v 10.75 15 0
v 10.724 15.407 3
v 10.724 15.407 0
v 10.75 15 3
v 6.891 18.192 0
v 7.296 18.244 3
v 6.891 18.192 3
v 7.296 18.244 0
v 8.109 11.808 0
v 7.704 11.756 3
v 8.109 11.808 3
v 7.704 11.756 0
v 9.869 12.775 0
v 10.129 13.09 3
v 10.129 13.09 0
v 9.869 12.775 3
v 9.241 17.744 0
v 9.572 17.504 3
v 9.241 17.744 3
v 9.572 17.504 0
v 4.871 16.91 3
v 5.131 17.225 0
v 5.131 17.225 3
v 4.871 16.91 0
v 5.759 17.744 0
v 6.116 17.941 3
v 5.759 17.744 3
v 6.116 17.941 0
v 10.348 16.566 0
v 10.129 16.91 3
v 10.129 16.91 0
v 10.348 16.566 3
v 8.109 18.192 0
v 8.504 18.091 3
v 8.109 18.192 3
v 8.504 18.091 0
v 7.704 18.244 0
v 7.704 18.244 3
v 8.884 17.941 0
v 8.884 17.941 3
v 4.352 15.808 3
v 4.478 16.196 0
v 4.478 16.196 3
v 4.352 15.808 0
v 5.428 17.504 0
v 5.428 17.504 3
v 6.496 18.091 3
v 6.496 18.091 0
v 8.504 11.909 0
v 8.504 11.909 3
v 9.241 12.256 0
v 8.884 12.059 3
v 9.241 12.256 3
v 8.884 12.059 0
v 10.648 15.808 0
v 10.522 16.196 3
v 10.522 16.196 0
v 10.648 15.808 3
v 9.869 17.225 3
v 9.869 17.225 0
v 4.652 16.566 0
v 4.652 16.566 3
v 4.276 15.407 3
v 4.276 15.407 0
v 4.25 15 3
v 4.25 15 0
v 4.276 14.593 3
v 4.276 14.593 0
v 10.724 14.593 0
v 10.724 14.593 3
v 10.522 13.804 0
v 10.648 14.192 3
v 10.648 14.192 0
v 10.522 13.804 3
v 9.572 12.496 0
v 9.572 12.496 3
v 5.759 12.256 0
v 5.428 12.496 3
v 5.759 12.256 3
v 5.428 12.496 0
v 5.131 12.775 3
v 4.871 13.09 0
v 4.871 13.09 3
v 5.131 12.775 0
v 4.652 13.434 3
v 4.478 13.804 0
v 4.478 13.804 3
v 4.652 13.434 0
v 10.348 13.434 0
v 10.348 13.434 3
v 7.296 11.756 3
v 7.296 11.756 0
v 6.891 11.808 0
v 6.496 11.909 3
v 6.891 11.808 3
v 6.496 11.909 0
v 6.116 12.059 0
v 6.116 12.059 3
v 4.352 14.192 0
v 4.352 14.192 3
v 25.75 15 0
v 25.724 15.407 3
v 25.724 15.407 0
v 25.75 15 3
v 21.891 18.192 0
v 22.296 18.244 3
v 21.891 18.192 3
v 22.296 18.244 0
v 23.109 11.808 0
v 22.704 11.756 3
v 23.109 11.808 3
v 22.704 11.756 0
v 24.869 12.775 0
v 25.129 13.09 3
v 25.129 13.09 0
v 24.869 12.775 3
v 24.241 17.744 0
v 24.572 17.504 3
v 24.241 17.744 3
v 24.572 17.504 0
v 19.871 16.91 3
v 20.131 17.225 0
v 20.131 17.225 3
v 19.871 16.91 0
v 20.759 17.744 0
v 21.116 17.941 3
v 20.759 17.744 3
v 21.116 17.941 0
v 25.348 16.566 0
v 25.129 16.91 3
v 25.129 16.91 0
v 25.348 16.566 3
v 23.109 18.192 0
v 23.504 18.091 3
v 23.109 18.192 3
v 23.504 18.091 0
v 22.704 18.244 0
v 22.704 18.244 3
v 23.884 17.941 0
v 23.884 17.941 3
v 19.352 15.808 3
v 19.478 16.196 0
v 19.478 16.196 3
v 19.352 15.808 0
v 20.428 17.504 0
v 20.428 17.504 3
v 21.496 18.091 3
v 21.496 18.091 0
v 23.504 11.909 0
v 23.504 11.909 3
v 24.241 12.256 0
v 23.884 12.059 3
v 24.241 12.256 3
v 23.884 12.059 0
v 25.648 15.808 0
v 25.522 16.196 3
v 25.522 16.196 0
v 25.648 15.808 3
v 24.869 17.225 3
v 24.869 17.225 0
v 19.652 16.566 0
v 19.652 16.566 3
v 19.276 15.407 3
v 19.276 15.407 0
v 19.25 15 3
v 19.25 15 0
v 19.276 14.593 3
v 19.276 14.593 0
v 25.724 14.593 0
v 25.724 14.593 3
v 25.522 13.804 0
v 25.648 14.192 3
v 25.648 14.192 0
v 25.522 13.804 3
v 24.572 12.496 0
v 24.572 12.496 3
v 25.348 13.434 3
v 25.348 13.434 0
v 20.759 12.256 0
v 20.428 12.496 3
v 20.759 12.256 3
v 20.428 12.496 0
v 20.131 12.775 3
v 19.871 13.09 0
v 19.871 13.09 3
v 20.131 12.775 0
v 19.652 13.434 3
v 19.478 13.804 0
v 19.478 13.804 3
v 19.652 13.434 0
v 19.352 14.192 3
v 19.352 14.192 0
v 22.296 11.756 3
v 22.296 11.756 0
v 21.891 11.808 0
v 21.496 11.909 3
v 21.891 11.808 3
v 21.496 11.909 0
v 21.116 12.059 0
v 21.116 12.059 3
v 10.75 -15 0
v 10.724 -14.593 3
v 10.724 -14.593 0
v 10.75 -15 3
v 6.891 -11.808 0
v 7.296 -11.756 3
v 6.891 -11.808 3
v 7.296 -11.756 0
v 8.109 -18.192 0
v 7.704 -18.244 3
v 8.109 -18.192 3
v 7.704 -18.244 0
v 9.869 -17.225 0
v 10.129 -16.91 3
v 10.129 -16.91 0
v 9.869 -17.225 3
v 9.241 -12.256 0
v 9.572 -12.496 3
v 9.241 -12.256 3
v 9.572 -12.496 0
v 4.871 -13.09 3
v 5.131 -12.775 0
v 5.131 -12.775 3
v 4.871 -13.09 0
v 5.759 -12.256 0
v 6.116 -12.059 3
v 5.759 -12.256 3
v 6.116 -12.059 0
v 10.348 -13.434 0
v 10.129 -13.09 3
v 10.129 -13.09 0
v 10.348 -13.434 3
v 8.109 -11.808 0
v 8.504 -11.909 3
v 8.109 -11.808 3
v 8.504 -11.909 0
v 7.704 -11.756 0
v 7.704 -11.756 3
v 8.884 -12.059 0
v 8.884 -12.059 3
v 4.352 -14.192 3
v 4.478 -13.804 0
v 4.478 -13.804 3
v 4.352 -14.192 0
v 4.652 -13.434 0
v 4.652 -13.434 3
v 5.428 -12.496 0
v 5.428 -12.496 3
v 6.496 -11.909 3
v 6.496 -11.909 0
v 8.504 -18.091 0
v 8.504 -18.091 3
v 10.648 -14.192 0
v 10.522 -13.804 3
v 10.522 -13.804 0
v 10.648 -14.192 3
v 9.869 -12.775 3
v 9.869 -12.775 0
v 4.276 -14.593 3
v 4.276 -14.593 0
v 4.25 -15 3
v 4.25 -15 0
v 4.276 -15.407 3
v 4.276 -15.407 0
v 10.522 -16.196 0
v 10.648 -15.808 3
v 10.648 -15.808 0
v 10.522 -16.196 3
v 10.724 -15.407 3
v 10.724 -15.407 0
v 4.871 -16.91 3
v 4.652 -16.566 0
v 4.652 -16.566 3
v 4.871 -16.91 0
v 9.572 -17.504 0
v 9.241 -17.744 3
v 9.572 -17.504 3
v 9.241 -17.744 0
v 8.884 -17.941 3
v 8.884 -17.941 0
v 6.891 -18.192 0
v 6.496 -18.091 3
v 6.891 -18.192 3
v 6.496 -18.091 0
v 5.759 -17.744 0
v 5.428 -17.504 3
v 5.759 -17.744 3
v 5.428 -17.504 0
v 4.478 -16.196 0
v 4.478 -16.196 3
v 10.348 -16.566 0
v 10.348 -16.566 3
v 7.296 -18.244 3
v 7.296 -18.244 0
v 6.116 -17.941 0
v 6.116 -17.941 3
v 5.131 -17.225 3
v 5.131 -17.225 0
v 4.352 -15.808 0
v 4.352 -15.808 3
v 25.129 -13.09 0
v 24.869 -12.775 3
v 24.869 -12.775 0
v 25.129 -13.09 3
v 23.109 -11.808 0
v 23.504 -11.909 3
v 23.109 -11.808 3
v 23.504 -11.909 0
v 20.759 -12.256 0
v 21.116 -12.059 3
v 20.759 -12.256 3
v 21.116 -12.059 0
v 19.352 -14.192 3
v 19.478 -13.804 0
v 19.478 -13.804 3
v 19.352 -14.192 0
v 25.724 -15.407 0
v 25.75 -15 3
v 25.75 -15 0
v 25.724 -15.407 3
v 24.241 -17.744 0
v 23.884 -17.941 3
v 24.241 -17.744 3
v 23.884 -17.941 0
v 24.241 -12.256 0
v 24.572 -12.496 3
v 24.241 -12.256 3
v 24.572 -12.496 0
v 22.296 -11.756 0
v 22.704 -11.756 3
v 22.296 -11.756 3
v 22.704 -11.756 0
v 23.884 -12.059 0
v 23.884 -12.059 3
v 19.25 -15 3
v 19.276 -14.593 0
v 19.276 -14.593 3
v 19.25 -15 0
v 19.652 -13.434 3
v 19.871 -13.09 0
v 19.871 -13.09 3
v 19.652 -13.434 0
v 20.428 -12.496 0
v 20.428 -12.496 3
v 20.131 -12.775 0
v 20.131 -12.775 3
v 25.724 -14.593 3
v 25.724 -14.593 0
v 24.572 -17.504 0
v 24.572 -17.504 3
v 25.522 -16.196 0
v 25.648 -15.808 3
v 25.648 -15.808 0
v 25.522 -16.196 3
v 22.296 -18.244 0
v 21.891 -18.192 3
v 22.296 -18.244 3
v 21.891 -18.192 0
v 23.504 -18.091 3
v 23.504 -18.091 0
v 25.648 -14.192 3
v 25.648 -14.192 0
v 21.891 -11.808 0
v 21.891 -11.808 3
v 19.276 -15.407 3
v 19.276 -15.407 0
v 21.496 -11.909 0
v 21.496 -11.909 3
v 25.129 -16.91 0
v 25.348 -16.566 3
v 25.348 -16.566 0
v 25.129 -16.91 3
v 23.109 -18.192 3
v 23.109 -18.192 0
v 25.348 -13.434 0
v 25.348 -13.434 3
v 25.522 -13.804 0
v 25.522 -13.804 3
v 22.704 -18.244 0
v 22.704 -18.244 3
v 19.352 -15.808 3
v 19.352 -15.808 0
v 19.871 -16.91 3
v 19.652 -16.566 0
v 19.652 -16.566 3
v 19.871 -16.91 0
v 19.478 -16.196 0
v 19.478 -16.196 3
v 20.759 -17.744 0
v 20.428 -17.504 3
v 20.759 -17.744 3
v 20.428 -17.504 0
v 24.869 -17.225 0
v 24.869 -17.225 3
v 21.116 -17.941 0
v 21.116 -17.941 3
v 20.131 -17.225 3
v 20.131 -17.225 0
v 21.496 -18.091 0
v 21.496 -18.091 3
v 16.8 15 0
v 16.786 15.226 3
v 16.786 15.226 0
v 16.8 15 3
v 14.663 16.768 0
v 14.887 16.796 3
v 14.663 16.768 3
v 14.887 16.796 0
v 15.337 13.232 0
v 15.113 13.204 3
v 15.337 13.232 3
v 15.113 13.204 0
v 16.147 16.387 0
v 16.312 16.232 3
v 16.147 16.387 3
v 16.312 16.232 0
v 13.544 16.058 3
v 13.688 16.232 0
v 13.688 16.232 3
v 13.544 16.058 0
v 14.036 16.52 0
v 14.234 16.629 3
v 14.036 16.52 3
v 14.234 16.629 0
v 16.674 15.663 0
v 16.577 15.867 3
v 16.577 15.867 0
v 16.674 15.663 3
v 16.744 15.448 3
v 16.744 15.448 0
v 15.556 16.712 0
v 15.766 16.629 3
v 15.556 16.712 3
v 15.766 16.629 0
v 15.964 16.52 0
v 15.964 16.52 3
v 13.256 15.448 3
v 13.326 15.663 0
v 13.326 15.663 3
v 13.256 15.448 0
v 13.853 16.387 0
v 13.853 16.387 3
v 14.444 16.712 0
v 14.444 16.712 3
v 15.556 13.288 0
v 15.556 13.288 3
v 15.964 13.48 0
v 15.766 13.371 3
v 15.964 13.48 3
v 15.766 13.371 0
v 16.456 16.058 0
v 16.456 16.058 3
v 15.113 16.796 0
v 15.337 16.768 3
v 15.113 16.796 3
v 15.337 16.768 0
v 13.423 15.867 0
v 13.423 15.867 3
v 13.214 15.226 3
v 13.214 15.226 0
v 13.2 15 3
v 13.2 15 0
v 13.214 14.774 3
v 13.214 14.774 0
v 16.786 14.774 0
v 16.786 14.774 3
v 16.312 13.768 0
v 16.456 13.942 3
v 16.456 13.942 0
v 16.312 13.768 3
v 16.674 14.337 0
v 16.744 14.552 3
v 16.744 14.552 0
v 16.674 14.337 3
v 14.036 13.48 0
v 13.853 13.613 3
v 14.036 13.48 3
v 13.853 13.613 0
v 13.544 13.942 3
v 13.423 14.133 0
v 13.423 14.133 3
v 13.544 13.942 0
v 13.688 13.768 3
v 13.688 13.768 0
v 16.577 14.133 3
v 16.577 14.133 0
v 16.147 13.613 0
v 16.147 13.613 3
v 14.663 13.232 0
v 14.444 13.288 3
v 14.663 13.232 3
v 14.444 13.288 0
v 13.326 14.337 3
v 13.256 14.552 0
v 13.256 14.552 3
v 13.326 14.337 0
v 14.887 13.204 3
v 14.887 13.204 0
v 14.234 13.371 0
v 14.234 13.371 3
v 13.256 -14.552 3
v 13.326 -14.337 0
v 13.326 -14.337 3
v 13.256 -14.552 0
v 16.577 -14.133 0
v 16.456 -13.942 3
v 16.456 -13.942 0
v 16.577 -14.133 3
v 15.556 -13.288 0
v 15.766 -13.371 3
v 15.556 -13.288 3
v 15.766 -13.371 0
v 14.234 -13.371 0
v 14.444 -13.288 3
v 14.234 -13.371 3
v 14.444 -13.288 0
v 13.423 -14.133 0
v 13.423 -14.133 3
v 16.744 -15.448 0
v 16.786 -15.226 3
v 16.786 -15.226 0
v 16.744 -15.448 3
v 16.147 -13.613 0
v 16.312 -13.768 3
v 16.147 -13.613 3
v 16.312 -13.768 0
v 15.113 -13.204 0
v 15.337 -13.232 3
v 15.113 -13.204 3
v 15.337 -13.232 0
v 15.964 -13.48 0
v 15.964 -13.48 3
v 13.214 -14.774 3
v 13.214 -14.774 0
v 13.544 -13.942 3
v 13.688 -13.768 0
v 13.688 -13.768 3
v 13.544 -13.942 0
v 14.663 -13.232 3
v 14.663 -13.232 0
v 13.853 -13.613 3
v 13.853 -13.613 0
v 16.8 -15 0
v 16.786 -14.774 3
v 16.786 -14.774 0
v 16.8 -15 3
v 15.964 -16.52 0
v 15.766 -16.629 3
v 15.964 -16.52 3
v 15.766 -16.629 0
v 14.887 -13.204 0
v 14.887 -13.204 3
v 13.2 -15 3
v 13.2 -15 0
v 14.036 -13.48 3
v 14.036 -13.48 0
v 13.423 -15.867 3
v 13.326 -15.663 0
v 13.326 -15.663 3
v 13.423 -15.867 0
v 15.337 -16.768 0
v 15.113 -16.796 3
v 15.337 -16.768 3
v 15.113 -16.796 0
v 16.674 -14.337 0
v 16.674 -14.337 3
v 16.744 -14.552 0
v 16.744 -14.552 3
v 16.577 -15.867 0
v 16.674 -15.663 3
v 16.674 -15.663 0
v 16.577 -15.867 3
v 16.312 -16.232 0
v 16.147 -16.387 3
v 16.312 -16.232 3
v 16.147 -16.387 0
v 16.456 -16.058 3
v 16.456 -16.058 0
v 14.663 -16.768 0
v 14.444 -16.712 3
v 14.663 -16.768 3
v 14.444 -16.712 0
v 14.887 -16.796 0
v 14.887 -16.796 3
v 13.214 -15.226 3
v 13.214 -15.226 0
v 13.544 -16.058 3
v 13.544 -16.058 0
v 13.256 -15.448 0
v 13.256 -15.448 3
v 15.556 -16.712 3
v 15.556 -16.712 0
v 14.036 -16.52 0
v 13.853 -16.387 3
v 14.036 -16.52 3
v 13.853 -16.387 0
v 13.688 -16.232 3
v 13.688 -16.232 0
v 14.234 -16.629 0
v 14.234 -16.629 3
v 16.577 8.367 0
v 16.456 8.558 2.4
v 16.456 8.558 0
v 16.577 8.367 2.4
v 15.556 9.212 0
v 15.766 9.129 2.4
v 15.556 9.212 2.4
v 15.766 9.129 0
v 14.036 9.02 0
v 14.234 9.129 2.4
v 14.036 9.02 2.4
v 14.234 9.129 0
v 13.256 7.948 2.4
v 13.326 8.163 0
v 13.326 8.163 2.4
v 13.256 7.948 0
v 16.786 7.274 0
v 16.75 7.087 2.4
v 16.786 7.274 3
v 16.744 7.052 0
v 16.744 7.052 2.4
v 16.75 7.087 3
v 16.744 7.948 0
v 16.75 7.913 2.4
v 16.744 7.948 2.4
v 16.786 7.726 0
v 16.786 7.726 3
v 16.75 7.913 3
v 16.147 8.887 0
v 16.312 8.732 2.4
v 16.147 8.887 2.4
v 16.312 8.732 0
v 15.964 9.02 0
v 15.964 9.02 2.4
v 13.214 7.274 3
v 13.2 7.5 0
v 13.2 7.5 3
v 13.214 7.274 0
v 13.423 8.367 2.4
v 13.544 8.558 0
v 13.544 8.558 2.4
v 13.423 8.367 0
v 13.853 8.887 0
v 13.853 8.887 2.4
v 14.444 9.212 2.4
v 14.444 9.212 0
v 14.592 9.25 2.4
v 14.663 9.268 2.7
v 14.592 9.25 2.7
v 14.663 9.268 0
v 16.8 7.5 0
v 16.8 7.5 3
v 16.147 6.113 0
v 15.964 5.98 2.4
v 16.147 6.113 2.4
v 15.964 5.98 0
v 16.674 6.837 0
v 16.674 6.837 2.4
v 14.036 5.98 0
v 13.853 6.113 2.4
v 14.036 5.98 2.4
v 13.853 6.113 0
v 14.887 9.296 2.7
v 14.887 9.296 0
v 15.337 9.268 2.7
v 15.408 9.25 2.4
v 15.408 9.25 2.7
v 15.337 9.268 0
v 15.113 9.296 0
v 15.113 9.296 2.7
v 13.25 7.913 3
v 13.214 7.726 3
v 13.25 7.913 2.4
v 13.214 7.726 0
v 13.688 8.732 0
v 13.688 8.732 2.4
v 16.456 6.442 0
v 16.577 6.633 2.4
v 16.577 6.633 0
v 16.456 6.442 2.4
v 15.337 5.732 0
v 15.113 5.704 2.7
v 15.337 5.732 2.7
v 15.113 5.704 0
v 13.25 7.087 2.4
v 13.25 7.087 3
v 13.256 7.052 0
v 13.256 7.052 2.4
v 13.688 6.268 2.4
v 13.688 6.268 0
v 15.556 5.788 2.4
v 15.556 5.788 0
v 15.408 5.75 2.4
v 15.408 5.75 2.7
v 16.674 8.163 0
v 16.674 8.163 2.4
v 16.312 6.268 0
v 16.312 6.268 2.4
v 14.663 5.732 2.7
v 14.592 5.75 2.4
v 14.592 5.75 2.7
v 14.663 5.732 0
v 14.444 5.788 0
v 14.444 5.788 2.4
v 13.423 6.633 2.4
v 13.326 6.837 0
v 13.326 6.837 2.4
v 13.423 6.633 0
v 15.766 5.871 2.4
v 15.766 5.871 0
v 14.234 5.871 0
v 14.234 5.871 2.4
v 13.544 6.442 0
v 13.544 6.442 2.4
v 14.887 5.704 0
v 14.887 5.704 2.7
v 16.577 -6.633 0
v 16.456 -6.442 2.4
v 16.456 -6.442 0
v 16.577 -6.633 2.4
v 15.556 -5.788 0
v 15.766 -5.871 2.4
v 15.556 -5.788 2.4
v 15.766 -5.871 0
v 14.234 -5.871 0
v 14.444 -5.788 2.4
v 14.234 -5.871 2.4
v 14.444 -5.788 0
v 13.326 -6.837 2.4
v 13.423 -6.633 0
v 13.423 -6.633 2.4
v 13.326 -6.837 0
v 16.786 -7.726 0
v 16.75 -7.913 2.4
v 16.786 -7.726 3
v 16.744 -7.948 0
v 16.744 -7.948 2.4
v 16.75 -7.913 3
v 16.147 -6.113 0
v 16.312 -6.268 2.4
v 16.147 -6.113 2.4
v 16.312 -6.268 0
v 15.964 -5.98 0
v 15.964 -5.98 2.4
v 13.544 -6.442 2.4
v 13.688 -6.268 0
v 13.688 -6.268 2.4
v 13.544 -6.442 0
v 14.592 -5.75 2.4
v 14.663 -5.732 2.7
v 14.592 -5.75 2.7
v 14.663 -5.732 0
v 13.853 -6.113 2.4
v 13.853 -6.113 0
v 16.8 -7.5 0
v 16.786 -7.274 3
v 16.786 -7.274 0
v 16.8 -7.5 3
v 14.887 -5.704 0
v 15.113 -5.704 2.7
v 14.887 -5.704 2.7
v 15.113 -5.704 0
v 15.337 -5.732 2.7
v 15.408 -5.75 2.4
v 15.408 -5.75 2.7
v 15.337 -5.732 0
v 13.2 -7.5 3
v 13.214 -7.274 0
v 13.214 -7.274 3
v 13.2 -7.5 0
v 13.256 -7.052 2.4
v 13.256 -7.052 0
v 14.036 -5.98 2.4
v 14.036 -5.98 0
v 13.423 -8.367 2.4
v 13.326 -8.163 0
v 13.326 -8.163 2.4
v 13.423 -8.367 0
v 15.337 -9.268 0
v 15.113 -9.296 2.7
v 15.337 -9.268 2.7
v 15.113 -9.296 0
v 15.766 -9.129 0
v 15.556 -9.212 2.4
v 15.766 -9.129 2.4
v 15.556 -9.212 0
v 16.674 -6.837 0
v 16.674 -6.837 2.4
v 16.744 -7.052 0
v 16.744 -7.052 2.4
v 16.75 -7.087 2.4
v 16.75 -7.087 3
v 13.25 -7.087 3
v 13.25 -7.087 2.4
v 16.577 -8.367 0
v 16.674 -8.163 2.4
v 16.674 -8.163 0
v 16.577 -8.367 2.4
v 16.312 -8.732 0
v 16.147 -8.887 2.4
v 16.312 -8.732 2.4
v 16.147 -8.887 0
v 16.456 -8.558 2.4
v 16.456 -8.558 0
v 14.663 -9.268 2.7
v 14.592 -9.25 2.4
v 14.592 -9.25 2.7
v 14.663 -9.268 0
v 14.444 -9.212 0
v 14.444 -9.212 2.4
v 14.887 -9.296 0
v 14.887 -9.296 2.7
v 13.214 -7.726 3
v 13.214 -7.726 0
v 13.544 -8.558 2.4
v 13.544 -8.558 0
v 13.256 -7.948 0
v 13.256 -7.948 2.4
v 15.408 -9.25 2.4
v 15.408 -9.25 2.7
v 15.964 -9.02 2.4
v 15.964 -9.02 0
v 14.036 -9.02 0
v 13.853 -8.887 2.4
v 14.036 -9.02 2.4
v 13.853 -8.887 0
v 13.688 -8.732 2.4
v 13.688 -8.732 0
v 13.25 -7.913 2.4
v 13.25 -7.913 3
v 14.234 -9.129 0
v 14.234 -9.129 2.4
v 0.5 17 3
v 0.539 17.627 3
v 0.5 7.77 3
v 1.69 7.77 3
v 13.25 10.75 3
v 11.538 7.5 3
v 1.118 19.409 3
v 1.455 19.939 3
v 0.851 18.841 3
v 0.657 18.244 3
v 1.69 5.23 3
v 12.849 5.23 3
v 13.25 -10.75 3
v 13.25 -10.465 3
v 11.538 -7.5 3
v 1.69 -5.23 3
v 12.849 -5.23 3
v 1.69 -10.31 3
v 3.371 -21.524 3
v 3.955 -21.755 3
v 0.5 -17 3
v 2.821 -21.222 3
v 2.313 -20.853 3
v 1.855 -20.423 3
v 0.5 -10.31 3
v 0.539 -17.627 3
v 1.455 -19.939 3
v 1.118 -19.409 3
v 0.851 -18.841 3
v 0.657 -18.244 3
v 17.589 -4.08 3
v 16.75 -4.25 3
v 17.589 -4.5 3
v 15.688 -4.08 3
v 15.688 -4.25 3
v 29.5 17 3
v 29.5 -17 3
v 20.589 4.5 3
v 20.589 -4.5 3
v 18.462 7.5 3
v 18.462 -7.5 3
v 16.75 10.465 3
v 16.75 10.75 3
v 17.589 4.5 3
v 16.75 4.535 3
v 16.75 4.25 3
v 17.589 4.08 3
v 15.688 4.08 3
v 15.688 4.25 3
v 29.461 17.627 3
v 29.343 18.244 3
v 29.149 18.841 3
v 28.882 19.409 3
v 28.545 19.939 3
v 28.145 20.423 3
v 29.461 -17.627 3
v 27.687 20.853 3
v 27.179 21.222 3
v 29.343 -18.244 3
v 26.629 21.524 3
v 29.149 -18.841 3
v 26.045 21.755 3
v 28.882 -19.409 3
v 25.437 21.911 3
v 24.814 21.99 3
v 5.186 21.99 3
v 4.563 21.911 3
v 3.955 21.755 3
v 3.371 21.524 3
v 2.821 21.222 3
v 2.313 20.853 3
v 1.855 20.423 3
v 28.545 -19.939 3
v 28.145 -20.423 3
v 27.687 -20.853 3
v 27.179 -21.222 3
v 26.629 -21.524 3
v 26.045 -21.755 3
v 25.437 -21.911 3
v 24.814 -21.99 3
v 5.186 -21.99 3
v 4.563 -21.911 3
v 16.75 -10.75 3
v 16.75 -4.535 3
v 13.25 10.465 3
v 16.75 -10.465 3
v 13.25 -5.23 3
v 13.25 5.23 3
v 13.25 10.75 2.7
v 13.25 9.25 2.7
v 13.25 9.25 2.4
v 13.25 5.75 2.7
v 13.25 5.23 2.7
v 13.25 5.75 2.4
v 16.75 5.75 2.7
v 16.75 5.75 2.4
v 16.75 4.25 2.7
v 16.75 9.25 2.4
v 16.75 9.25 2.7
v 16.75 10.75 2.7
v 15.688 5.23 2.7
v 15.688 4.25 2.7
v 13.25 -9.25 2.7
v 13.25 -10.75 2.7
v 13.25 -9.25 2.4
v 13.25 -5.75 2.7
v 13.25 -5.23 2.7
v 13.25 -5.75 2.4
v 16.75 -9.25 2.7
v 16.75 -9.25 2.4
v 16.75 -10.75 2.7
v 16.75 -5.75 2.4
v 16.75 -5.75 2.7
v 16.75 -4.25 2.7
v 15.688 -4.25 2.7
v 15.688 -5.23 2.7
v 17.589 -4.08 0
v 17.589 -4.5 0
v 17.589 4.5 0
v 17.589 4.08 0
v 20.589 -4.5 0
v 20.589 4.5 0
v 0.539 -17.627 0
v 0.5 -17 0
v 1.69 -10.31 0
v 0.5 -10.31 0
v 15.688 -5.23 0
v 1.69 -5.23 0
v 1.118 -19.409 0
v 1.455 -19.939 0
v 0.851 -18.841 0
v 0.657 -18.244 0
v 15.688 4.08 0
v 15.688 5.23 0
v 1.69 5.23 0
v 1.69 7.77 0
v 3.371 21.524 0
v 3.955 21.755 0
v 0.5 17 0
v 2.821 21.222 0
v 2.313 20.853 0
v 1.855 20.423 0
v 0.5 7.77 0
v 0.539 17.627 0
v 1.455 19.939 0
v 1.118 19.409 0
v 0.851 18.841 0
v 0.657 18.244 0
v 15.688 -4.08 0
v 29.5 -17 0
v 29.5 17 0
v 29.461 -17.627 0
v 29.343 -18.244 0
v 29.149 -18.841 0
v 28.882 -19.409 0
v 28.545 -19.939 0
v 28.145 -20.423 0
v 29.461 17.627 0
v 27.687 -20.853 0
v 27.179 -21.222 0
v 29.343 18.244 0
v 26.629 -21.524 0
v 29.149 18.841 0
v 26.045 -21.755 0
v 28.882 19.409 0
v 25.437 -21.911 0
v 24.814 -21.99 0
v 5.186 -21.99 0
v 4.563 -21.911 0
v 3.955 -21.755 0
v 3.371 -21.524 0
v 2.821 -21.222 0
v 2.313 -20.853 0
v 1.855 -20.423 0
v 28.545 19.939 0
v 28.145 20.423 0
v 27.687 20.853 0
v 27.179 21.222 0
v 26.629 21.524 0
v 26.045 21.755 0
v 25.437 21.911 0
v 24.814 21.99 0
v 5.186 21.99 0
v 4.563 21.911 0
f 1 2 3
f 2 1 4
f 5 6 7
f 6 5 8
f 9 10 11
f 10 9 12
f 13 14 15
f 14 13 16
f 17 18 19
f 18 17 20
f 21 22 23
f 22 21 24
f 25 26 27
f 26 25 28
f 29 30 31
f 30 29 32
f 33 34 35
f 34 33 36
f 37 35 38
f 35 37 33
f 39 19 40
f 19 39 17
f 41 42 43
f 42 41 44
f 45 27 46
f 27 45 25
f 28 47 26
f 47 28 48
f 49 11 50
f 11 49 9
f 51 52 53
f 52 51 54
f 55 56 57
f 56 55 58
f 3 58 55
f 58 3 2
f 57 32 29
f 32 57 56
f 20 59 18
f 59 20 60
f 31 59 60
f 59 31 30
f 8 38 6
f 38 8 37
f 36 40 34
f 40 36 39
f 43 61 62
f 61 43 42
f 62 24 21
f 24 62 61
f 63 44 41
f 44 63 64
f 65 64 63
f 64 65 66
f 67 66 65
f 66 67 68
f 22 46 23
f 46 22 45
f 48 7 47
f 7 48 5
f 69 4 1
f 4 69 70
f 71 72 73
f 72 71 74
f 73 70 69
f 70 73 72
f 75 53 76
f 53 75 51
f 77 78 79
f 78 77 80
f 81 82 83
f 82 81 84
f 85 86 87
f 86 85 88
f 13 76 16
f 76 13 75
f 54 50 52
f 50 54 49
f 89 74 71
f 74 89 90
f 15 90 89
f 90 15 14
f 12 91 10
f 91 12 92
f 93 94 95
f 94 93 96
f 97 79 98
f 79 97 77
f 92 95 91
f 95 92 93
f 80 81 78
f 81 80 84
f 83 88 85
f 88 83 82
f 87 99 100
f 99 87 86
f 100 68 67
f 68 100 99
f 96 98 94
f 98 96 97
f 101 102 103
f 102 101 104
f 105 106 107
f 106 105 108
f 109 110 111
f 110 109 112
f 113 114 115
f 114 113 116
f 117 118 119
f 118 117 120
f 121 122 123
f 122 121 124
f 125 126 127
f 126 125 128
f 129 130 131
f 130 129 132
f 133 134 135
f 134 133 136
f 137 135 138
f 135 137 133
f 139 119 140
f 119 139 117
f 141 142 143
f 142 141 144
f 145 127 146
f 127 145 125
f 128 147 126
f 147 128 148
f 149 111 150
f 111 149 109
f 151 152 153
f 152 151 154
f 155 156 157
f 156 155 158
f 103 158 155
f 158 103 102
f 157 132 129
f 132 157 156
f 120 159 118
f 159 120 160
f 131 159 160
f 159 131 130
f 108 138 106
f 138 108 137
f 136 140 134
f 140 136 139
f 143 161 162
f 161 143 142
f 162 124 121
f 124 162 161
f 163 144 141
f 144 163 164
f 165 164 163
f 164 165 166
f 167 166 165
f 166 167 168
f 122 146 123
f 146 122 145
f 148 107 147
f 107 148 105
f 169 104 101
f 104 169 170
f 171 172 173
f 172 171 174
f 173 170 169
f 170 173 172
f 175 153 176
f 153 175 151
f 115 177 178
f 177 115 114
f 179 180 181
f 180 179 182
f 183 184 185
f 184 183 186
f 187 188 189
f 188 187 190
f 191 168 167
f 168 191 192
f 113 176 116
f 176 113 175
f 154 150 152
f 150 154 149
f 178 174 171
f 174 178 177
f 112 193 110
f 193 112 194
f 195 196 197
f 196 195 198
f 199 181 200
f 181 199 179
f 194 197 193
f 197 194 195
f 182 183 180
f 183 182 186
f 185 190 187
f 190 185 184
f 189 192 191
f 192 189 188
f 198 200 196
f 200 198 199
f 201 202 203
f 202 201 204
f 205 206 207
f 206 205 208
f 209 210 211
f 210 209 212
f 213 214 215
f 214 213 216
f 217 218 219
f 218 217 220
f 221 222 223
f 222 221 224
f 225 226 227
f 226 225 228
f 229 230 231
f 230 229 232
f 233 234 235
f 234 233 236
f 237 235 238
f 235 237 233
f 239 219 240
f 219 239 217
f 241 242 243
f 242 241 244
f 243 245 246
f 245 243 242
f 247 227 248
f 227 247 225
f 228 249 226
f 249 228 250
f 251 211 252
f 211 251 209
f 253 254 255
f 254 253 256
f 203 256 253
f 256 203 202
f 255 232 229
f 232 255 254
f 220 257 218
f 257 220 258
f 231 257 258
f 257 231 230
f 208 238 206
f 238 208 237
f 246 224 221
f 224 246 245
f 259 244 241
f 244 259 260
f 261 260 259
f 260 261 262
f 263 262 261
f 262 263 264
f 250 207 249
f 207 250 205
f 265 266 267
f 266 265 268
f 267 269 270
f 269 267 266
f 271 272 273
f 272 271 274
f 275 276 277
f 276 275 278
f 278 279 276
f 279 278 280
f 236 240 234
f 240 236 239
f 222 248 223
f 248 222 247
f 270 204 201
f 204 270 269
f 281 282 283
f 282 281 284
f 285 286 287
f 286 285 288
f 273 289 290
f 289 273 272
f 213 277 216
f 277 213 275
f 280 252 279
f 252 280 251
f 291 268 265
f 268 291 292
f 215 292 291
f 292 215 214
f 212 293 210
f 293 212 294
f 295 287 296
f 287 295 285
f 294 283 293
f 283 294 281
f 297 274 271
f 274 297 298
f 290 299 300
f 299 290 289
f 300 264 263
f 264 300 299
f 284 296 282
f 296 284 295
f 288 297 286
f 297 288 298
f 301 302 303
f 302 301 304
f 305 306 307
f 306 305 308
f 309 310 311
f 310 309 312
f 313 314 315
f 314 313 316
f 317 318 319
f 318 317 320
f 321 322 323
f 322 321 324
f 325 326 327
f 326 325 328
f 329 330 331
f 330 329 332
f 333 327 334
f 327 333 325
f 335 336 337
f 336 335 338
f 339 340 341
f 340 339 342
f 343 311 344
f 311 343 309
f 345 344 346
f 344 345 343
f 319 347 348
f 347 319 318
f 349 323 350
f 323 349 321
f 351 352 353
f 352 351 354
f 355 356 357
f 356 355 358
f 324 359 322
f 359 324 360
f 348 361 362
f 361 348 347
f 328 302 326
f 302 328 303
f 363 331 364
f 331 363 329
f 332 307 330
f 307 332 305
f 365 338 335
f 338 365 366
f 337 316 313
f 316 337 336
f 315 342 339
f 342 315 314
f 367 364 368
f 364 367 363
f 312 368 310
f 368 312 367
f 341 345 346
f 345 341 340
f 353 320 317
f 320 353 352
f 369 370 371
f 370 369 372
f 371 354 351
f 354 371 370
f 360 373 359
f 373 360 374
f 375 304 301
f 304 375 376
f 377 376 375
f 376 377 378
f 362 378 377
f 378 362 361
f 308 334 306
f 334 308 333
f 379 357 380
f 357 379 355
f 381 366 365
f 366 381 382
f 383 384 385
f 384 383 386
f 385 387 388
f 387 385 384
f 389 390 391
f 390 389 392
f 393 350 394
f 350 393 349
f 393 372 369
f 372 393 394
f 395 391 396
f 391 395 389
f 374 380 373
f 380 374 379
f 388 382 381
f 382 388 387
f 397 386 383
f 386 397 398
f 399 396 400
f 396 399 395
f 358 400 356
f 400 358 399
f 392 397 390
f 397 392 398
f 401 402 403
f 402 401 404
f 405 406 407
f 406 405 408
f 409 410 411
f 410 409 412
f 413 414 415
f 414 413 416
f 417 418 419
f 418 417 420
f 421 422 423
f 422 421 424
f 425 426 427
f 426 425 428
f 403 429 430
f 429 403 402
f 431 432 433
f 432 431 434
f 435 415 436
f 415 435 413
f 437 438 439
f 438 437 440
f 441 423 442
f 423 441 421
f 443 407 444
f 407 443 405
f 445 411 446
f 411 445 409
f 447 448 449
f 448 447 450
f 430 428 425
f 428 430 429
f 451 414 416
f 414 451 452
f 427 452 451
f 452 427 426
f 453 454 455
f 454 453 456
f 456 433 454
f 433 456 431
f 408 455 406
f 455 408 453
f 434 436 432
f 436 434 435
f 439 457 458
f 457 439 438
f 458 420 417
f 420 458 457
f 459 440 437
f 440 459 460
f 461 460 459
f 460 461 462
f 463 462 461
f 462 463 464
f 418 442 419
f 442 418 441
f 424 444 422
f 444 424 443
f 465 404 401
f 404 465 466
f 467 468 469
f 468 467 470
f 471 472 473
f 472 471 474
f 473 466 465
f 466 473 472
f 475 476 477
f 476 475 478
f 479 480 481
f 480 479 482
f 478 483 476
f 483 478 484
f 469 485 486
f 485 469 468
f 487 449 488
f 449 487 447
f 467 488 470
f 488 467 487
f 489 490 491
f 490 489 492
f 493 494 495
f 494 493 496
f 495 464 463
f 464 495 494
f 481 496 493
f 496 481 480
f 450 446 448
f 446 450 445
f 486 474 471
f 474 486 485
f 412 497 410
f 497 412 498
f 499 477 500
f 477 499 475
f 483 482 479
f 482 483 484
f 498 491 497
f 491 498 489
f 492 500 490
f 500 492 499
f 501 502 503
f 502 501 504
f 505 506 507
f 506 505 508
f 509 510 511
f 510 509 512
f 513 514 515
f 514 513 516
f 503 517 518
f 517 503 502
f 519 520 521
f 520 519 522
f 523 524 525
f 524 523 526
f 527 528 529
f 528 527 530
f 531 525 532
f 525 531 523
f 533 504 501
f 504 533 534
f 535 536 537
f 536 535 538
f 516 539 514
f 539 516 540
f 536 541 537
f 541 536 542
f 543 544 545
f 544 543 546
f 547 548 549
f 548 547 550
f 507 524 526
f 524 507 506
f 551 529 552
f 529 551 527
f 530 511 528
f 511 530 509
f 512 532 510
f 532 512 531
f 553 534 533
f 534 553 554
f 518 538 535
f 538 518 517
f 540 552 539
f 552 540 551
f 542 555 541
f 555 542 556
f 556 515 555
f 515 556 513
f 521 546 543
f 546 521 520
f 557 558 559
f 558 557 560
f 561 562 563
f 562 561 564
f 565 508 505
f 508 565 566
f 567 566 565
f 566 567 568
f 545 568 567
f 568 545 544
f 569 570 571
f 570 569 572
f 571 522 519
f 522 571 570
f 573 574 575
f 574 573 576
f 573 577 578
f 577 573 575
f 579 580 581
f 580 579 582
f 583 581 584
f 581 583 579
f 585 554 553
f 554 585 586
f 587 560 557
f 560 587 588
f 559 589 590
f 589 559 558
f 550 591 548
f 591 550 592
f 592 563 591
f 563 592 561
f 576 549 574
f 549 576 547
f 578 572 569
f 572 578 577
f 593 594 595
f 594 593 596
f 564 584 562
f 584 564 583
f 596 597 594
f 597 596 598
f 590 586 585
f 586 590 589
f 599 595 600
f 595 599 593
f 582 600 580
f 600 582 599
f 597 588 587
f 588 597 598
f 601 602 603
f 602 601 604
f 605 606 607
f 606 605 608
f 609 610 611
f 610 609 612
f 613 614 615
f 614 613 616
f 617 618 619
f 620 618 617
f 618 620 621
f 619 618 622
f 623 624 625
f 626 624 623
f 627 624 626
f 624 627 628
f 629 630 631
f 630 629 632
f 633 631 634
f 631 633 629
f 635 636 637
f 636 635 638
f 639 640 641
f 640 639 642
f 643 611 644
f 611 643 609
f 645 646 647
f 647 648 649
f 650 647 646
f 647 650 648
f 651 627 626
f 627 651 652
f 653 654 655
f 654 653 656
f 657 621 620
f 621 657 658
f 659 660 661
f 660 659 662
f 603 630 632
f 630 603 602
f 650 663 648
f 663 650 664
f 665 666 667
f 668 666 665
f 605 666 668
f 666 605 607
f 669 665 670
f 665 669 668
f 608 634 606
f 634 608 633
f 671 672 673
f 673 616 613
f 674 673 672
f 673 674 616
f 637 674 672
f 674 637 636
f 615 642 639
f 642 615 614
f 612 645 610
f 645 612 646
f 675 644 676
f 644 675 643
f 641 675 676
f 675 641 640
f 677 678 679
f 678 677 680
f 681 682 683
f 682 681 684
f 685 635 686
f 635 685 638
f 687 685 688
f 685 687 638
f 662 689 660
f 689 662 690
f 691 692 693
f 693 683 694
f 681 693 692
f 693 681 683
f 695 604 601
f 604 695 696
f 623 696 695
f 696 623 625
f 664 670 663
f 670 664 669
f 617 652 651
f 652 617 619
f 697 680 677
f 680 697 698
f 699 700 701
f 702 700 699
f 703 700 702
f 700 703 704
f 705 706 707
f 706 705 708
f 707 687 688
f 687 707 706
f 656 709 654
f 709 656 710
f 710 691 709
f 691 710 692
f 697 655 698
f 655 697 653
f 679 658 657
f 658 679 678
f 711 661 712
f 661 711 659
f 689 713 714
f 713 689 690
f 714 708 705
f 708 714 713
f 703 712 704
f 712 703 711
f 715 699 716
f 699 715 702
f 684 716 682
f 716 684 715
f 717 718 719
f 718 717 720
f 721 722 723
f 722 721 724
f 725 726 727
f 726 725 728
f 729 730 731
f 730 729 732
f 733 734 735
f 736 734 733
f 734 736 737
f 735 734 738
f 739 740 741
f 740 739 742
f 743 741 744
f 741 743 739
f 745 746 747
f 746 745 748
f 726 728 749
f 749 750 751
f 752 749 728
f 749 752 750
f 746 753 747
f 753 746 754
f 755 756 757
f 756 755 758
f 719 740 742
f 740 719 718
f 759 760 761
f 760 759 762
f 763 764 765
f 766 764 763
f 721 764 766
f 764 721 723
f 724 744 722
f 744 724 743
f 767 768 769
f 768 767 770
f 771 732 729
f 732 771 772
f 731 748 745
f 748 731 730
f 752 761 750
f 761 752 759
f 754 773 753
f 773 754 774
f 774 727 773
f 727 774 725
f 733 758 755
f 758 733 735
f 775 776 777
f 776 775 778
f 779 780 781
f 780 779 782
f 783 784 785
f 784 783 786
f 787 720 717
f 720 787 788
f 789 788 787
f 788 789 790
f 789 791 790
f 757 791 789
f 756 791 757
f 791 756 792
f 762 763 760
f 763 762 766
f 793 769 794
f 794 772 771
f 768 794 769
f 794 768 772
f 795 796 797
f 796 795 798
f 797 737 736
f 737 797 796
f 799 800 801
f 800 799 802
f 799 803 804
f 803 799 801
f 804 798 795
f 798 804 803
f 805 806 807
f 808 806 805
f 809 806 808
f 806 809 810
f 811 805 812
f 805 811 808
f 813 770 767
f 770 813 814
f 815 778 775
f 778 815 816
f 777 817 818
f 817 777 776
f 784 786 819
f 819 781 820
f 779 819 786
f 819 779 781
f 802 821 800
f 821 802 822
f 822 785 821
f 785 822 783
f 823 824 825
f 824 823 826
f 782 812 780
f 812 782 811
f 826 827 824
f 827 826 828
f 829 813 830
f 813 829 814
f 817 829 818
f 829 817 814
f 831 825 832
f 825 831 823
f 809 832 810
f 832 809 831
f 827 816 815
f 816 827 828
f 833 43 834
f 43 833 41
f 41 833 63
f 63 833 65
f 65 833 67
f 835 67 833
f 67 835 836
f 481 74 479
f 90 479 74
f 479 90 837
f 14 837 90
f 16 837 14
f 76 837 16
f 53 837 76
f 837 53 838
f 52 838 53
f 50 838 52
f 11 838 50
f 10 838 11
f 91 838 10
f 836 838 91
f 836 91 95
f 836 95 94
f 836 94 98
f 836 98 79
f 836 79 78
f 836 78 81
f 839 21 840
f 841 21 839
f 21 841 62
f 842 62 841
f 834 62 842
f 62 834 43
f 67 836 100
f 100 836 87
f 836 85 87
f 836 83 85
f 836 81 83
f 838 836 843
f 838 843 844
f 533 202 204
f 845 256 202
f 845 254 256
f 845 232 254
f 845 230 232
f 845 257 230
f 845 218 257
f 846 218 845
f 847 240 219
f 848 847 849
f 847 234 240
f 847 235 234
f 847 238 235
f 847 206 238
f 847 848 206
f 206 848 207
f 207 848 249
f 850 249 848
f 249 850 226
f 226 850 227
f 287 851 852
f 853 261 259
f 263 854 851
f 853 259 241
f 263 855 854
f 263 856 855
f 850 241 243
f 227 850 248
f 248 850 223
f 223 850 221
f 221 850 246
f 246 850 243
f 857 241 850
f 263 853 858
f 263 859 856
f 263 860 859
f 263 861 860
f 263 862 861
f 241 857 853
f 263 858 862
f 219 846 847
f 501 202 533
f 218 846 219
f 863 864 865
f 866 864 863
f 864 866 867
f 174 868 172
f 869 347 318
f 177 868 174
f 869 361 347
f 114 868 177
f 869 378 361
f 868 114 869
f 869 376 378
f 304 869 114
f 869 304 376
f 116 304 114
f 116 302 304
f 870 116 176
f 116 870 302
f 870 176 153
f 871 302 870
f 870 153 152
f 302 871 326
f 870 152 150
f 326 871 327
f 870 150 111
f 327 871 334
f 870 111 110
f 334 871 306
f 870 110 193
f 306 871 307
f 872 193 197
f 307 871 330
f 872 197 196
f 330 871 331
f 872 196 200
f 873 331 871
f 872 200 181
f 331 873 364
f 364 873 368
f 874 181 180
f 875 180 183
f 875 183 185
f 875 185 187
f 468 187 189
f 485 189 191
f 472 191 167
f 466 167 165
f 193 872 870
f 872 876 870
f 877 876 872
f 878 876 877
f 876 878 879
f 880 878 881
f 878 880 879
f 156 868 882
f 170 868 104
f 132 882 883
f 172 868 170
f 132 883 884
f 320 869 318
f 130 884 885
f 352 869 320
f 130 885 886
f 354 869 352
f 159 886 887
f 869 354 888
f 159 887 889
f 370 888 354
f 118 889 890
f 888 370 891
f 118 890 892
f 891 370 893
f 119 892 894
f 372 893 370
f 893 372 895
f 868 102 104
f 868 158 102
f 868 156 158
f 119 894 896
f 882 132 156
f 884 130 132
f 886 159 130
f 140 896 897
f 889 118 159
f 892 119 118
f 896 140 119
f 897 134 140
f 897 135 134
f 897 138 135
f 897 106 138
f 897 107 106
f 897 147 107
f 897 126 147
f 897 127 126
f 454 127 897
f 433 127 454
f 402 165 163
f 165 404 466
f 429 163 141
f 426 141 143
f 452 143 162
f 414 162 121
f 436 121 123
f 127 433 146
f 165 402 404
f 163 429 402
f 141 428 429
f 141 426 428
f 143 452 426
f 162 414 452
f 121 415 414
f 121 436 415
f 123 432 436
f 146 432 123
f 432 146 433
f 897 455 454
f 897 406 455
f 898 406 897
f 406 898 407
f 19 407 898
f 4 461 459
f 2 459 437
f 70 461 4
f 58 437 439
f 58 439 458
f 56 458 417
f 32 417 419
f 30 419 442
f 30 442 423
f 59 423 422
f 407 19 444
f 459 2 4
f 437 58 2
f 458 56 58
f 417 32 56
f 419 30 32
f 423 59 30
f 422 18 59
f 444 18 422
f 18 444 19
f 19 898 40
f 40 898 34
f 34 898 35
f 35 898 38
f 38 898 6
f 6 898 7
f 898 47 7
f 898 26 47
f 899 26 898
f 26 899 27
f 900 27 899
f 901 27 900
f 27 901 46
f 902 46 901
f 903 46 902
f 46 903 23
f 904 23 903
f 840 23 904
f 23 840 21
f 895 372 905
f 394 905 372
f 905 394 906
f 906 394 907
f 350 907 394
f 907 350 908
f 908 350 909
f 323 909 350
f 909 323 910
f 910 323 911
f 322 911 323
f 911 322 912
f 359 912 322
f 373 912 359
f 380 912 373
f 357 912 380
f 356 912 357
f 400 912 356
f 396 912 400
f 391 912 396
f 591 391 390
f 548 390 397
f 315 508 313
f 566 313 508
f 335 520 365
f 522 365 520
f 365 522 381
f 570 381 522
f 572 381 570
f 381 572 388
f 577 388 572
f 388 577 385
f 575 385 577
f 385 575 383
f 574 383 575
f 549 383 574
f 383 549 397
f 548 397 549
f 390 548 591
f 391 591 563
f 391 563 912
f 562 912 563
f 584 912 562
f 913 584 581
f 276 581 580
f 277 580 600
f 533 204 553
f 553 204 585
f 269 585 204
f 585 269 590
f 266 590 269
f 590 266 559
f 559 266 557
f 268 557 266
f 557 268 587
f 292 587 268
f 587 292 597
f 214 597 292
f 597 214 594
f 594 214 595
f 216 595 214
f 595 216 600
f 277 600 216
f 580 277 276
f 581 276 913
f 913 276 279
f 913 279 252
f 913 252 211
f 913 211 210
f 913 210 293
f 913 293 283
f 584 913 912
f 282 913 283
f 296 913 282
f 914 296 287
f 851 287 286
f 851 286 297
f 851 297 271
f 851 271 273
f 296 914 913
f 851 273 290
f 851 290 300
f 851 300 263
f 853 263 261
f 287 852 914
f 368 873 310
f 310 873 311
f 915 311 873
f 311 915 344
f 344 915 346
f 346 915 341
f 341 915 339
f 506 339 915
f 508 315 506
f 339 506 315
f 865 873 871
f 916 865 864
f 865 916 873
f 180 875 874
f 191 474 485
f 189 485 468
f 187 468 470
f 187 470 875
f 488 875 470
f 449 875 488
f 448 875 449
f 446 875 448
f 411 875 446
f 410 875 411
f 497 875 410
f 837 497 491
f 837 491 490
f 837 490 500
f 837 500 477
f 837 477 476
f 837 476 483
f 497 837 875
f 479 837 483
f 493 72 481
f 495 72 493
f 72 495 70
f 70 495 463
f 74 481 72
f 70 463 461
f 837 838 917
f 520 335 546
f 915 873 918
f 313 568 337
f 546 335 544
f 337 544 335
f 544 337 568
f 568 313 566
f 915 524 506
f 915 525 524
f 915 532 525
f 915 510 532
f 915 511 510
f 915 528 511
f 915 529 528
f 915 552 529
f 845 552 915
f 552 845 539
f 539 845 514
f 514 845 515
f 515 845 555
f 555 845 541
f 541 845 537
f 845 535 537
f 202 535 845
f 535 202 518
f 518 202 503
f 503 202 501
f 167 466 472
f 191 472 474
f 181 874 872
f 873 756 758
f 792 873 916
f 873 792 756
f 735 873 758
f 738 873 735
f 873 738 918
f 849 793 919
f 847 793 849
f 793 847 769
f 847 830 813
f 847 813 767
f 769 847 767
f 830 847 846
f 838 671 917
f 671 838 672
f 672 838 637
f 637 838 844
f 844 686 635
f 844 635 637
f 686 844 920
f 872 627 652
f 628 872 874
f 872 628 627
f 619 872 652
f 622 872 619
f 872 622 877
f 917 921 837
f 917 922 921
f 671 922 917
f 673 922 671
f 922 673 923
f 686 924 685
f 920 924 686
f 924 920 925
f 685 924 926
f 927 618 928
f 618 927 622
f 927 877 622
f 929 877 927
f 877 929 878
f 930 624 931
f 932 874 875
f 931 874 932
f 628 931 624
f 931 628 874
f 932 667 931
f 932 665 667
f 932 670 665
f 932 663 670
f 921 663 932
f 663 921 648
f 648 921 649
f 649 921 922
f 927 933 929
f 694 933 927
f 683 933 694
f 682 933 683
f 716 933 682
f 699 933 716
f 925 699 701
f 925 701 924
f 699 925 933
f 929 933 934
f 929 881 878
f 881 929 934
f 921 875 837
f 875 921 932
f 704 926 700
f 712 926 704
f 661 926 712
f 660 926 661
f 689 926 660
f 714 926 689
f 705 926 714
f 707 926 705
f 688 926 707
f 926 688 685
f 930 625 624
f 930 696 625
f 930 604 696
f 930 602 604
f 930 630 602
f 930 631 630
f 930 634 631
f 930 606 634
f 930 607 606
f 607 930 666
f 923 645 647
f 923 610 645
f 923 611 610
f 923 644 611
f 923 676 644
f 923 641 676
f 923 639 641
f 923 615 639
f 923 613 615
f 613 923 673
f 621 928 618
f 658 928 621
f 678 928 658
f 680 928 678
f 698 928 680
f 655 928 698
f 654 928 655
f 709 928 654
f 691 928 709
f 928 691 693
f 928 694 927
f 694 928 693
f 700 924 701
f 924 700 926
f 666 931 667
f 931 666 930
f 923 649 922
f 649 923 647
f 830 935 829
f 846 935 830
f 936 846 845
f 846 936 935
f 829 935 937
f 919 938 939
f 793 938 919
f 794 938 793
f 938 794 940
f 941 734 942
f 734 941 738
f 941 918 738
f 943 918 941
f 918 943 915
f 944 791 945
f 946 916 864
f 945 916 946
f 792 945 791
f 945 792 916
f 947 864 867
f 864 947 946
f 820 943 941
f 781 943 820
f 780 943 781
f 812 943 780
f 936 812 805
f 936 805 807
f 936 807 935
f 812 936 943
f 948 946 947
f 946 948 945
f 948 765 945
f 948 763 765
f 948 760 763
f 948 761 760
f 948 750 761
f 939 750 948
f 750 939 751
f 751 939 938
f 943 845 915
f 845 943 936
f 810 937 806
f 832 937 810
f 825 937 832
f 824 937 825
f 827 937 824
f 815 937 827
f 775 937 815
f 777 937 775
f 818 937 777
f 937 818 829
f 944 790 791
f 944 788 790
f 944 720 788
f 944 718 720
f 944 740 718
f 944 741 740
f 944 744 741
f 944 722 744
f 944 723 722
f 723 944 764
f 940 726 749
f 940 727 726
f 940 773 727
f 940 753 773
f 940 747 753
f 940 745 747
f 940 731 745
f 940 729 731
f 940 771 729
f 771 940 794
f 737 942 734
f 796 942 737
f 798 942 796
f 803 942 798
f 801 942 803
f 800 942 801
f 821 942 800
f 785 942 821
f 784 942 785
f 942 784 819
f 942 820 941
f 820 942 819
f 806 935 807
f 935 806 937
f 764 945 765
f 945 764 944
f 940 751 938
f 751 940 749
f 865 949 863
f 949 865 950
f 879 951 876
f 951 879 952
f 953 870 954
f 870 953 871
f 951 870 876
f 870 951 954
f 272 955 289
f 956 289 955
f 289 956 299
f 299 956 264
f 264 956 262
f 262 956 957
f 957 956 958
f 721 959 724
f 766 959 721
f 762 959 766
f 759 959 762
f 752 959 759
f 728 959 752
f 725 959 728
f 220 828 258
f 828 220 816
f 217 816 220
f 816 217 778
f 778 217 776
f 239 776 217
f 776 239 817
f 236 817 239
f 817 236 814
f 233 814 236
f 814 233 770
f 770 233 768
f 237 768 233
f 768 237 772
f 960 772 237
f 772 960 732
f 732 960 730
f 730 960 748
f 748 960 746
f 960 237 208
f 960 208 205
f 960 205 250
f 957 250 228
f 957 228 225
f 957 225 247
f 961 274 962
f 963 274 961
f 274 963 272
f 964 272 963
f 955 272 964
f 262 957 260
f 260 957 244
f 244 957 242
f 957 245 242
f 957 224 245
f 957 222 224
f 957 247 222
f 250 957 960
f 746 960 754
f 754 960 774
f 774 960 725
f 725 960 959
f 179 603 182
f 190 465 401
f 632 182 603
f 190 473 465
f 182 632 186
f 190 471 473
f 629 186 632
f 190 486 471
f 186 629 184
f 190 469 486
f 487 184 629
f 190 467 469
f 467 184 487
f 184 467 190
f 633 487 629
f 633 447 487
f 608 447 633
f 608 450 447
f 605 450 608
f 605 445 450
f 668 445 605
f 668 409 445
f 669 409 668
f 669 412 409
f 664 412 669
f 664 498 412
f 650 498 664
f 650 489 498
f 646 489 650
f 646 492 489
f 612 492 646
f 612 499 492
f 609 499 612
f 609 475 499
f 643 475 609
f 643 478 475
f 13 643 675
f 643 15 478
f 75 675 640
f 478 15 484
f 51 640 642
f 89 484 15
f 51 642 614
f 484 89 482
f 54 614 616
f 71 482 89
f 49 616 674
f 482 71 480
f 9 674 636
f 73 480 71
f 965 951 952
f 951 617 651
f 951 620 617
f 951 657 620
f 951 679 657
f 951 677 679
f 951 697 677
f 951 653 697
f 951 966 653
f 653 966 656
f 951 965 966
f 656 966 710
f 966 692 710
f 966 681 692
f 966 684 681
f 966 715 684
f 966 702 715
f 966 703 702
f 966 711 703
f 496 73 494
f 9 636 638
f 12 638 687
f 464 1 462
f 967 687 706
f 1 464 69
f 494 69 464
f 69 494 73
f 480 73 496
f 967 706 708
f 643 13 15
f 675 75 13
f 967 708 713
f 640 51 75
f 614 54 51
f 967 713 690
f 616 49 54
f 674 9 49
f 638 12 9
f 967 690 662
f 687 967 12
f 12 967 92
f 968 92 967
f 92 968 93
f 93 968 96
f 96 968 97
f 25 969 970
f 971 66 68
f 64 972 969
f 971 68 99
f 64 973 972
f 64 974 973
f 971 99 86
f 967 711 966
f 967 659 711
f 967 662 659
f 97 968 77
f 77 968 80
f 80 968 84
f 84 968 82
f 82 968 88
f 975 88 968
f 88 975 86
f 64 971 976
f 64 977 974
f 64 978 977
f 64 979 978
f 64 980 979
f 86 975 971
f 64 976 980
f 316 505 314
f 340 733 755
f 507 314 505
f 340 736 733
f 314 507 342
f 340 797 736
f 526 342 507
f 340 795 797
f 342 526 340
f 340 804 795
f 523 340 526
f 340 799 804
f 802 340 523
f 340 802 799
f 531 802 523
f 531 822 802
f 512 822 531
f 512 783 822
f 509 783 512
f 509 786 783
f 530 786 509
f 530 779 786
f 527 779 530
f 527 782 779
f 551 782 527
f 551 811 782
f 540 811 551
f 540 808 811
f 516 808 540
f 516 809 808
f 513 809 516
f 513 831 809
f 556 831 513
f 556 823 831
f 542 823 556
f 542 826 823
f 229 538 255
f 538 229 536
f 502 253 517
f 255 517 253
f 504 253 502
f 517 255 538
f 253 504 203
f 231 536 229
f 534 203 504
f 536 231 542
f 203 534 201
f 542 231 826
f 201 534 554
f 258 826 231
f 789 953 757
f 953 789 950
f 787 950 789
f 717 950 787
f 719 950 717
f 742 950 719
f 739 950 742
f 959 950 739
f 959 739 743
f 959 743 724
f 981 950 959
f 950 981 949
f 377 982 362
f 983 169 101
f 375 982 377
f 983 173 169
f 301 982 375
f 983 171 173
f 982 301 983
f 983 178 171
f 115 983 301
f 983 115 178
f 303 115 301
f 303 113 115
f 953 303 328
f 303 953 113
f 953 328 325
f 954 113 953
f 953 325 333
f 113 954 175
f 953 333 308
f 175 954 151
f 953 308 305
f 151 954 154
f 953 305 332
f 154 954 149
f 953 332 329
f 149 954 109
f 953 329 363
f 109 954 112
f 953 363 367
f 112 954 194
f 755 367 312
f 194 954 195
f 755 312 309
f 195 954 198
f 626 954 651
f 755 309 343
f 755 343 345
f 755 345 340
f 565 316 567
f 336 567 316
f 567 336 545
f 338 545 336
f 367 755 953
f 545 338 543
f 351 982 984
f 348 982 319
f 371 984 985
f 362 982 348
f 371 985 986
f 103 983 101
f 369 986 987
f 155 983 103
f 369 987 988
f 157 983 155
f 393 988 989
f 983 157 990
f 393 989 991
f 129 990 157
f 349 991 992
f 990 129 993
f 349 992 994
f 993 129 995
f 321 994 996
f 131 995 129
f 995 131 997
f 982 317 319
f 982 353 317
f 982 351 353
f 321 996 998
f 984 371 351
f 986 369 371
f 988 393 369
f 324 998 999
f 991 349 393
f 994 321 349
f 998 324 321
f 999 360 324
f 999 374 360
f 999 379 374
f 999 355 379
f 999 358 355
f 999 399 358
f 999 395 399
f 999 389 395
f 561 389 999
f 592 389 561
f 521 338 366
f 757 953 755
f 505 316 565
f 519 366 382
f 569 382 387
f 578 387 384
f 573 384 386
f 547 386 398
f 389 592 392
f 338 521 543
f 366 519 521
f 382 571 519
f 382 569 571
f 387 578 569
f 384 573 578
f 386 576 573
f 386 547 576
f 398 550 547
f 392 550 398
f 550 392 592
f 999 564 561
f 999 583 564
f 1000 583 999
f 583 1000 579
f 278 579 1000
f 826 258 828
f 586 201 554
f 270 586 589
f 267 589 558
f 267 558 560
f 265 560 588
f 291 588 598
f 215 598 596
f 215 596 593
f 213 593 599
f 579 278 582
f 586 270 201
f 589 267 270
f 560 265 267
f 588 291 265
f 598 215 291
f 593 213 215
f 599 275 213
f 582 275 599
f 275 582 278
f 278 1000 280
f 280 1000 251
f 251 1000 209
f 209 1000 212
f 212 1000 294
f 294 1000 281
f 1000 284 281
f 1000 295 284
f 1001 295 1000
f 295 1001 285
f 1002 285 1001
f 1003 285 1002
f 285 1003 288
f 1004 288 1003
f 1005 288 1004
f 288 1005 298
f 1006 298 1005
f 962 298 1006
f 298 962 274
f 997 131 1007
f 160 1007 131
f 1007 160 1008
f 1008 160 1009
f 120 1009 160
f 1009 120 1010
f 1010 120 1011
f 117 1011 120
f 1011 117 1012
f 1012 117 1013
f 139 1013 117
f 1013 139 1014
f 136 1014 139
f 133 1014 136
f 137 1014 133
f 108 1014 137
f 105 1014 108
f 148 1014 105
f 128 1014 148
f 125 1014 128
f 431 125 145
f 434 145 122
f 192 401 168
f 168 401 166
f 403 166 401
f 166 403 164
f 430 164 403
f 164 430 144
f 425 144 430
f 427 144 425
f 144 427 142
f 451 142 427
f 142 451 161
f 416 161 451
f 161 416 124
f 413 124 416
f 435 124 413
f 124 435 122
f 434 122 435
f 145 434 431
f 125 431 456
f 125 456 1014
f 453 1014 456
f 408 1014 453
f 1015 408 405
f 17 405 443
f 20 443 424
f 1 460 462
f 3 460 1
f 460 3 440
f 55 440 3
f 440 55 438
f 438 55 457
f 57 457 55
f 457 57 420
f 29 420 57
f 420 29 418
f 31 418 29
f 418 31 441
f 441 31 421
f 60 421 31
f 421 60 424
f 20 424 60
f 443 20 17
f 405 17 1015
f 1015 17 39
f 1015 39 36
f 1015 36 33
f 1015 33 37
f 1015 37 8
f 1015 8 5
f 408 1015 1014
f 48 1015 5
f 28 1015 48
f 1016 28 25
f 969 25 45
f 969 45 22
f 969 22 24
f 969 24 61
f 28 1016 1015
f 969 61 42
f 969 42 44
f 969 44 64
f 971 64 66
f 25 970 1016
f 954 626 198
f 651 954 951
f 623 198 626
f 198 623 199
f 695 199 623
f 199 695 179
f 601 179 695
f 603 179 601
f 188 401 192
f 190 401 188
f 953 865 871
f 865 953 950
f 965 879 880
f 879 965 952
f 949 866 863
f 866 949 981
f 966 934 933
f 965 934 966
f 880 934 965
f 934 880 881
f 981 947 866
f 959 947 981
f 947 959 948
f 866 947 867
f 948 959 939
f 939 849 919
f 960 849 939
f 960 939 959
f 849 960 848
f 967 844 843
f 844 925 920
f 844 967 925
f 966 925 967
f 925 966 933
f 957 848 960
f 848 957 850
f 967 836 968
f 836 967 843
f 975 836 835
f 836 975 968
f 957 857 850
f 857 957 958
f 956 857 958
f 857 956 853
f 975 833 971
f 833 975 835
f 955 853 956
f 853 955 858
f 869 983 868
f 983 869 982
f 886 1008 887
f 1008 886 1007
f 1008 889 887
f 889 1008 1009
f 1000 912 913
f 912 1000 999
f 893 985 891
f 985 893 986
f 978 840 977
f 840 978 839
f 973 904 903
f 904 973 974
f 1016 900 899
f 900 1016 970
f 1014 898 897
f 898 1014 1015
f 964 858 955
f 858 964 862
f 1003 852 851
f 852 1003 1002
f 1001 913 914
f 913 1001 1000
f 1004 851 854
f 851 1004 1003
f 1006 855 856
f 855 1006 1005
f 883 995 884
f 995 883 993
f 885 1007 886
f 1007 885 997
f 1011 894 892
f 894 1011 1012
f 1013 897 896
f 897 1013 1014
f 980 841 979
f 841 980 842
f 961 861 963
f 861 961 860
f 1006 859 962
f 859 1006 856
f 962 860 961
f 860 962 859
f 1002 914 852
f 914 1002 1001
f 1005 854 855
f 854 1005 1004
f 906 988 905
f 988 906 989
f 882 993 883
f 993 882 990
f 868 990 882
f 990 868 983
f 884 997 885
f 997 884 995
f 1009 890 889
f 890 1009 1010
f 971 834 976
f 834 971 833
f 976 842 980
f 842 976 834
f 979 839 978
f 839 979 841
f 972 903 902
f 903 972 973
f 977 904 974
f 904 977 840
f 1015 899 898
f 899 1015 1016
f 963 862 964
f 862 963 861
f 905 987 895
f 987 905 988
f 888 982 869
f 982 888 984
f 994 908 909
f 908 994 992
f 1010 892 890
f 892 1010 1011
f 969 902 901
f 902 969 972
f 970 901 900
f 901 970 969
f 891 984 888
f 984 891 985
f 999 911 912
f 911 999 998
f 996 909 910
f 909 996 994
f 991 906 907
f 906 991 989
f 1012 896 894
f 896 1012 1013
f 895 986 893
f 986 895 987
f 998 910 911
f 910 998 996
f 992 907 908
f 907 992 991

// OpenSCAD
$fn = 50;


difference() {
	union() {
		translate(v = [15.0000000000, 0, 0]) {
			rotate(a = [0, 0, 0]) {
				hull() {
					translate(v = [-9.5000000000, 17.0000000000, 0]) {
						rotate(a = [0, 0, 0]) {
							translate(v = [0, 0, 0]) {
								rotate(a = [0, 0, 0]) {
									cylinder(h = 3, r = 5);
								}
							}
						}
					}
					translate(v = [9.5000000000, 17.0000000000, 0]) {
						rotate(a = [0, 0, 0]) {
							translate(v = [0, 0, 0]) {
								rotate(a = [0, 0, 0]) {
									cylinder(h = 3, r = 5);
								}
							}
						}
					}
					translate(v = [-9.5000000000, -17.0000000000, 0]) {
						rotate(a = [0, 0, 0]) {
							translate(v = [0, 0, 0]) {
								rotate(a = [0, 0, 0]) {
									cylinder(h = 3, r = 5);
								}
							}
						}
					}
					translate(v = [9.5000000000, -17.0000000000, 0]) {
						rotate(a = [0, 0, 0]) {
							translate(v = [0, 0, 0]) {
								rotate(a = [0, 0, 0]) {
									cylinder(h = 3, r = 5);
								}
							}
						}
					}
				}
			}
		}
	}
	union() {
		translate(v = [7.5000000000, 15.0000000000, -125.0000000000]) {
			rotate(a = [0, 0, 0]) {
				cylinder(h = 250, r = 3.2500000000);
			}
		}
		translate(v = [22.5000000000, 15.0000000000, -125.0000000000]) {
			rotate(a = [0, 0, 0]) {
				cylinder(h = 250, r = 3.2500000000);
			}
		}
		translate(v = [7.5000000000, -15.0000000000, -125.0000000000]) {
			rotate(a = [0, 0, 0]) {
				cylinder(h = 250, r = 3.2500000000);
			}
		}
		translate(v = [22.5000000000, -15.0000000000, -125.0000000000]) {
			rotate(a = [0, 0, 0]) {
				cylinder(h = 250, r = 3.2500000000);
			}
		}
		translate(v = [7.5000000000, 15.0000000000, -125.0000000000]) {
			rotate(a = [0, 0, 0]) {
				cylinder(h = 250, r = 1.8000000000);
			}
		}
		translate(v = [15.0000000000, 15.0000000000, -125.0000000000]) {
			rotate(a = [0, 0, 0]) {
				cylinder(h = 250, r = 1.8000000000);
			}
		}
		translate(v = [22.5000000000, 15.0000000000, -125.0000000000]) {
			rotate(a = [0, 0, 0]) {
				cylinder(h = 250, r = 1.8000000000);
			}
		}
		translate(v = [7.5000000000, -15.0000000000, -125.0000000000]) {
			rotate(a = [0, 0, 0]) {
				cylinder(h = 250, r = 1.8000000000);
			}
		}
		translate(v = [15.0000000000, -15.0000000000, -125.0000000000]) {
			rotate(a = [0, 0, 0]) {
				cylinder(h = 250, r = 1.8000000000);
			}
		}
		translate(v = [22.5000000000, -15.0000000000, -125.0000000000]) {
			rotate(a = [0, 0, 0]) {
				cylinder(h = 250, r = 1.8000000000);
			}
		}
		translate(v = [15, 7.5000000000, -125.0000000000]) {
			rotate(a = [0, 0, 0]) {
				cylinder(h = 250, r = 1.8000000000);
			}
		}
		translate(v = [15, -7.5000000000, -125.0000000000]) {
			rotate(a = [0, 0, 0]) {
				cylinder(h = 250, r = 1.8000000000);
			}
		}
		translate(v = [15, 7.5000000000, 3]) {
			rotate(a = [0, 0, 0]) {
				translate(v = [0, 0, 0]) {
					rotate(a = [0, 0, 0]) {
						linear_extrude(height = 3) {
							polygon(points = [[3.4620000000, 0.0000000000], [1.7310000000, 2.9981799479], [-1.7310000000, 2.9981799479], [-3.4620000000, 0.0000000000], [-1.7310000000, -2.9981799479], [1.7310000000, -2.9981799479]]);
						}
					}
				}
			}
		}
		translate(v = [13.2500000000, 4.2500000000, 6]) {
			rotate(a = [0, 0, 0]) {
				cube(size = [3.5000000000, 6.5000000000, 0.3000000000]);
			}
		}
		translate(v = [13.2500000000, 5.7500000000, 6.3000000000]) {
			rotate(a = [0, 0, 0]) {
				cube(size = [3.5000000000, 3.5000000000, 0.3000000000]);
			}
		}
		translate(v = [13.2500000000, 4.2500000000, 2.7000000000]) {
			rotate(a = [0, 0, 0]) {
				cube(size = [3.5000000000, 6.5000000000, 0.3000000000]);
			}
		}
		translate(v = [13.2500000000, 5.7500000000, 2.4000000000]) {
			rotate(a = [0, 0, 0]) {
				cube(size = [3.5000000000, 3.5000000000, 0.3000000000]);
			}
		}
		translate(v = [15, -7.5000000000, 3]) {
			rotate(a = [0, 0, 0]) {
				translate(v = [0, 0, 0]) {
					rotate(a = [0, 0, 0]) {
						linear_extrude(height = 3) {
							polygon(points = [[3.4620000000, 0.0000000000], [1.7310000000, 2.9981799479], [-1.7310000000, 2.9981799479], [-3.4620000000, 0.0000000000], [-1.7310000000, -2.9981799479], [1.7310000000, -2.9981799479]]);
						}
					}
				}
			}
		}
		translate(v = [13.2500000000, -10.7500000000, 6]) {
			rotate(a = [0, 0, 0]) {
				cube(size = [3.5000000000, 6.5000000000, 0.3000000000]);
			}
		}
		translate(v = [13.2500000000, -9.2500000000, 6.3000000000]) {
			rotate(a = [0, 0, 0]) {
				cube(size = [3.5000000000, 3.5000000000, 0.3000000000]);
			}
		}
		translate(v = [13.2500000000, -10.7500000000, 2.7000000000]) {
			rotate(a = [0, 0, 0]) {
				cube(size = [3.5000000000, 6.5000000000, 0.3000000000]);
			}
		}
		translate(v = [13.2500000000, -9.2500000000, 2.4000000000]) {
			rotate(a = [0, 0, 0]) {
				cube(size = [3.5000000000, 3.5000000000, 0.3000000000]);
			}
		}
		translate(v = [17.5890000000, -4.5000000000, 0]) {
			rotate(a = [0, 0, 0]) {
				cube(size = [3, 9, 10]);
			}
		}
		translate(v = [-7.0000000000, -9, 0.0000000000]) {
			rotate(a = [0, 0, 0]) {
				cylinder(h = 3, r = 1.5000000000);
			}
		}
		translate(v = [15.5670000000, -4.0800000000, 0]) {
			rotate(a = [0, 0, 0]) {
				cube(size = [5, 8.1600000000, 3]);
			}
		}
		translate(v = [-7.2960000000, -7.7700000000, 0]) {
			rotate(a = [0, 0, 0]) {
				cube(size = [6.3000000000, 13.0000000000, 3]);
			}
		}
		translate(v = [1.3880000000, -5.2300000000, 0]) {
			rotate(a = [0, 0, 0]) {
				cube(size = [14.3000000000, 10.4600000000, 3]);
			}
		}
		translate(v = [-1.1500000000, -10.3100000000, 0]) {
			rotate(a = [0, 0, 0]) {
				cube(size = [2.8400000000, 18.0800000000, 3]);
			}
		}
	}
}
